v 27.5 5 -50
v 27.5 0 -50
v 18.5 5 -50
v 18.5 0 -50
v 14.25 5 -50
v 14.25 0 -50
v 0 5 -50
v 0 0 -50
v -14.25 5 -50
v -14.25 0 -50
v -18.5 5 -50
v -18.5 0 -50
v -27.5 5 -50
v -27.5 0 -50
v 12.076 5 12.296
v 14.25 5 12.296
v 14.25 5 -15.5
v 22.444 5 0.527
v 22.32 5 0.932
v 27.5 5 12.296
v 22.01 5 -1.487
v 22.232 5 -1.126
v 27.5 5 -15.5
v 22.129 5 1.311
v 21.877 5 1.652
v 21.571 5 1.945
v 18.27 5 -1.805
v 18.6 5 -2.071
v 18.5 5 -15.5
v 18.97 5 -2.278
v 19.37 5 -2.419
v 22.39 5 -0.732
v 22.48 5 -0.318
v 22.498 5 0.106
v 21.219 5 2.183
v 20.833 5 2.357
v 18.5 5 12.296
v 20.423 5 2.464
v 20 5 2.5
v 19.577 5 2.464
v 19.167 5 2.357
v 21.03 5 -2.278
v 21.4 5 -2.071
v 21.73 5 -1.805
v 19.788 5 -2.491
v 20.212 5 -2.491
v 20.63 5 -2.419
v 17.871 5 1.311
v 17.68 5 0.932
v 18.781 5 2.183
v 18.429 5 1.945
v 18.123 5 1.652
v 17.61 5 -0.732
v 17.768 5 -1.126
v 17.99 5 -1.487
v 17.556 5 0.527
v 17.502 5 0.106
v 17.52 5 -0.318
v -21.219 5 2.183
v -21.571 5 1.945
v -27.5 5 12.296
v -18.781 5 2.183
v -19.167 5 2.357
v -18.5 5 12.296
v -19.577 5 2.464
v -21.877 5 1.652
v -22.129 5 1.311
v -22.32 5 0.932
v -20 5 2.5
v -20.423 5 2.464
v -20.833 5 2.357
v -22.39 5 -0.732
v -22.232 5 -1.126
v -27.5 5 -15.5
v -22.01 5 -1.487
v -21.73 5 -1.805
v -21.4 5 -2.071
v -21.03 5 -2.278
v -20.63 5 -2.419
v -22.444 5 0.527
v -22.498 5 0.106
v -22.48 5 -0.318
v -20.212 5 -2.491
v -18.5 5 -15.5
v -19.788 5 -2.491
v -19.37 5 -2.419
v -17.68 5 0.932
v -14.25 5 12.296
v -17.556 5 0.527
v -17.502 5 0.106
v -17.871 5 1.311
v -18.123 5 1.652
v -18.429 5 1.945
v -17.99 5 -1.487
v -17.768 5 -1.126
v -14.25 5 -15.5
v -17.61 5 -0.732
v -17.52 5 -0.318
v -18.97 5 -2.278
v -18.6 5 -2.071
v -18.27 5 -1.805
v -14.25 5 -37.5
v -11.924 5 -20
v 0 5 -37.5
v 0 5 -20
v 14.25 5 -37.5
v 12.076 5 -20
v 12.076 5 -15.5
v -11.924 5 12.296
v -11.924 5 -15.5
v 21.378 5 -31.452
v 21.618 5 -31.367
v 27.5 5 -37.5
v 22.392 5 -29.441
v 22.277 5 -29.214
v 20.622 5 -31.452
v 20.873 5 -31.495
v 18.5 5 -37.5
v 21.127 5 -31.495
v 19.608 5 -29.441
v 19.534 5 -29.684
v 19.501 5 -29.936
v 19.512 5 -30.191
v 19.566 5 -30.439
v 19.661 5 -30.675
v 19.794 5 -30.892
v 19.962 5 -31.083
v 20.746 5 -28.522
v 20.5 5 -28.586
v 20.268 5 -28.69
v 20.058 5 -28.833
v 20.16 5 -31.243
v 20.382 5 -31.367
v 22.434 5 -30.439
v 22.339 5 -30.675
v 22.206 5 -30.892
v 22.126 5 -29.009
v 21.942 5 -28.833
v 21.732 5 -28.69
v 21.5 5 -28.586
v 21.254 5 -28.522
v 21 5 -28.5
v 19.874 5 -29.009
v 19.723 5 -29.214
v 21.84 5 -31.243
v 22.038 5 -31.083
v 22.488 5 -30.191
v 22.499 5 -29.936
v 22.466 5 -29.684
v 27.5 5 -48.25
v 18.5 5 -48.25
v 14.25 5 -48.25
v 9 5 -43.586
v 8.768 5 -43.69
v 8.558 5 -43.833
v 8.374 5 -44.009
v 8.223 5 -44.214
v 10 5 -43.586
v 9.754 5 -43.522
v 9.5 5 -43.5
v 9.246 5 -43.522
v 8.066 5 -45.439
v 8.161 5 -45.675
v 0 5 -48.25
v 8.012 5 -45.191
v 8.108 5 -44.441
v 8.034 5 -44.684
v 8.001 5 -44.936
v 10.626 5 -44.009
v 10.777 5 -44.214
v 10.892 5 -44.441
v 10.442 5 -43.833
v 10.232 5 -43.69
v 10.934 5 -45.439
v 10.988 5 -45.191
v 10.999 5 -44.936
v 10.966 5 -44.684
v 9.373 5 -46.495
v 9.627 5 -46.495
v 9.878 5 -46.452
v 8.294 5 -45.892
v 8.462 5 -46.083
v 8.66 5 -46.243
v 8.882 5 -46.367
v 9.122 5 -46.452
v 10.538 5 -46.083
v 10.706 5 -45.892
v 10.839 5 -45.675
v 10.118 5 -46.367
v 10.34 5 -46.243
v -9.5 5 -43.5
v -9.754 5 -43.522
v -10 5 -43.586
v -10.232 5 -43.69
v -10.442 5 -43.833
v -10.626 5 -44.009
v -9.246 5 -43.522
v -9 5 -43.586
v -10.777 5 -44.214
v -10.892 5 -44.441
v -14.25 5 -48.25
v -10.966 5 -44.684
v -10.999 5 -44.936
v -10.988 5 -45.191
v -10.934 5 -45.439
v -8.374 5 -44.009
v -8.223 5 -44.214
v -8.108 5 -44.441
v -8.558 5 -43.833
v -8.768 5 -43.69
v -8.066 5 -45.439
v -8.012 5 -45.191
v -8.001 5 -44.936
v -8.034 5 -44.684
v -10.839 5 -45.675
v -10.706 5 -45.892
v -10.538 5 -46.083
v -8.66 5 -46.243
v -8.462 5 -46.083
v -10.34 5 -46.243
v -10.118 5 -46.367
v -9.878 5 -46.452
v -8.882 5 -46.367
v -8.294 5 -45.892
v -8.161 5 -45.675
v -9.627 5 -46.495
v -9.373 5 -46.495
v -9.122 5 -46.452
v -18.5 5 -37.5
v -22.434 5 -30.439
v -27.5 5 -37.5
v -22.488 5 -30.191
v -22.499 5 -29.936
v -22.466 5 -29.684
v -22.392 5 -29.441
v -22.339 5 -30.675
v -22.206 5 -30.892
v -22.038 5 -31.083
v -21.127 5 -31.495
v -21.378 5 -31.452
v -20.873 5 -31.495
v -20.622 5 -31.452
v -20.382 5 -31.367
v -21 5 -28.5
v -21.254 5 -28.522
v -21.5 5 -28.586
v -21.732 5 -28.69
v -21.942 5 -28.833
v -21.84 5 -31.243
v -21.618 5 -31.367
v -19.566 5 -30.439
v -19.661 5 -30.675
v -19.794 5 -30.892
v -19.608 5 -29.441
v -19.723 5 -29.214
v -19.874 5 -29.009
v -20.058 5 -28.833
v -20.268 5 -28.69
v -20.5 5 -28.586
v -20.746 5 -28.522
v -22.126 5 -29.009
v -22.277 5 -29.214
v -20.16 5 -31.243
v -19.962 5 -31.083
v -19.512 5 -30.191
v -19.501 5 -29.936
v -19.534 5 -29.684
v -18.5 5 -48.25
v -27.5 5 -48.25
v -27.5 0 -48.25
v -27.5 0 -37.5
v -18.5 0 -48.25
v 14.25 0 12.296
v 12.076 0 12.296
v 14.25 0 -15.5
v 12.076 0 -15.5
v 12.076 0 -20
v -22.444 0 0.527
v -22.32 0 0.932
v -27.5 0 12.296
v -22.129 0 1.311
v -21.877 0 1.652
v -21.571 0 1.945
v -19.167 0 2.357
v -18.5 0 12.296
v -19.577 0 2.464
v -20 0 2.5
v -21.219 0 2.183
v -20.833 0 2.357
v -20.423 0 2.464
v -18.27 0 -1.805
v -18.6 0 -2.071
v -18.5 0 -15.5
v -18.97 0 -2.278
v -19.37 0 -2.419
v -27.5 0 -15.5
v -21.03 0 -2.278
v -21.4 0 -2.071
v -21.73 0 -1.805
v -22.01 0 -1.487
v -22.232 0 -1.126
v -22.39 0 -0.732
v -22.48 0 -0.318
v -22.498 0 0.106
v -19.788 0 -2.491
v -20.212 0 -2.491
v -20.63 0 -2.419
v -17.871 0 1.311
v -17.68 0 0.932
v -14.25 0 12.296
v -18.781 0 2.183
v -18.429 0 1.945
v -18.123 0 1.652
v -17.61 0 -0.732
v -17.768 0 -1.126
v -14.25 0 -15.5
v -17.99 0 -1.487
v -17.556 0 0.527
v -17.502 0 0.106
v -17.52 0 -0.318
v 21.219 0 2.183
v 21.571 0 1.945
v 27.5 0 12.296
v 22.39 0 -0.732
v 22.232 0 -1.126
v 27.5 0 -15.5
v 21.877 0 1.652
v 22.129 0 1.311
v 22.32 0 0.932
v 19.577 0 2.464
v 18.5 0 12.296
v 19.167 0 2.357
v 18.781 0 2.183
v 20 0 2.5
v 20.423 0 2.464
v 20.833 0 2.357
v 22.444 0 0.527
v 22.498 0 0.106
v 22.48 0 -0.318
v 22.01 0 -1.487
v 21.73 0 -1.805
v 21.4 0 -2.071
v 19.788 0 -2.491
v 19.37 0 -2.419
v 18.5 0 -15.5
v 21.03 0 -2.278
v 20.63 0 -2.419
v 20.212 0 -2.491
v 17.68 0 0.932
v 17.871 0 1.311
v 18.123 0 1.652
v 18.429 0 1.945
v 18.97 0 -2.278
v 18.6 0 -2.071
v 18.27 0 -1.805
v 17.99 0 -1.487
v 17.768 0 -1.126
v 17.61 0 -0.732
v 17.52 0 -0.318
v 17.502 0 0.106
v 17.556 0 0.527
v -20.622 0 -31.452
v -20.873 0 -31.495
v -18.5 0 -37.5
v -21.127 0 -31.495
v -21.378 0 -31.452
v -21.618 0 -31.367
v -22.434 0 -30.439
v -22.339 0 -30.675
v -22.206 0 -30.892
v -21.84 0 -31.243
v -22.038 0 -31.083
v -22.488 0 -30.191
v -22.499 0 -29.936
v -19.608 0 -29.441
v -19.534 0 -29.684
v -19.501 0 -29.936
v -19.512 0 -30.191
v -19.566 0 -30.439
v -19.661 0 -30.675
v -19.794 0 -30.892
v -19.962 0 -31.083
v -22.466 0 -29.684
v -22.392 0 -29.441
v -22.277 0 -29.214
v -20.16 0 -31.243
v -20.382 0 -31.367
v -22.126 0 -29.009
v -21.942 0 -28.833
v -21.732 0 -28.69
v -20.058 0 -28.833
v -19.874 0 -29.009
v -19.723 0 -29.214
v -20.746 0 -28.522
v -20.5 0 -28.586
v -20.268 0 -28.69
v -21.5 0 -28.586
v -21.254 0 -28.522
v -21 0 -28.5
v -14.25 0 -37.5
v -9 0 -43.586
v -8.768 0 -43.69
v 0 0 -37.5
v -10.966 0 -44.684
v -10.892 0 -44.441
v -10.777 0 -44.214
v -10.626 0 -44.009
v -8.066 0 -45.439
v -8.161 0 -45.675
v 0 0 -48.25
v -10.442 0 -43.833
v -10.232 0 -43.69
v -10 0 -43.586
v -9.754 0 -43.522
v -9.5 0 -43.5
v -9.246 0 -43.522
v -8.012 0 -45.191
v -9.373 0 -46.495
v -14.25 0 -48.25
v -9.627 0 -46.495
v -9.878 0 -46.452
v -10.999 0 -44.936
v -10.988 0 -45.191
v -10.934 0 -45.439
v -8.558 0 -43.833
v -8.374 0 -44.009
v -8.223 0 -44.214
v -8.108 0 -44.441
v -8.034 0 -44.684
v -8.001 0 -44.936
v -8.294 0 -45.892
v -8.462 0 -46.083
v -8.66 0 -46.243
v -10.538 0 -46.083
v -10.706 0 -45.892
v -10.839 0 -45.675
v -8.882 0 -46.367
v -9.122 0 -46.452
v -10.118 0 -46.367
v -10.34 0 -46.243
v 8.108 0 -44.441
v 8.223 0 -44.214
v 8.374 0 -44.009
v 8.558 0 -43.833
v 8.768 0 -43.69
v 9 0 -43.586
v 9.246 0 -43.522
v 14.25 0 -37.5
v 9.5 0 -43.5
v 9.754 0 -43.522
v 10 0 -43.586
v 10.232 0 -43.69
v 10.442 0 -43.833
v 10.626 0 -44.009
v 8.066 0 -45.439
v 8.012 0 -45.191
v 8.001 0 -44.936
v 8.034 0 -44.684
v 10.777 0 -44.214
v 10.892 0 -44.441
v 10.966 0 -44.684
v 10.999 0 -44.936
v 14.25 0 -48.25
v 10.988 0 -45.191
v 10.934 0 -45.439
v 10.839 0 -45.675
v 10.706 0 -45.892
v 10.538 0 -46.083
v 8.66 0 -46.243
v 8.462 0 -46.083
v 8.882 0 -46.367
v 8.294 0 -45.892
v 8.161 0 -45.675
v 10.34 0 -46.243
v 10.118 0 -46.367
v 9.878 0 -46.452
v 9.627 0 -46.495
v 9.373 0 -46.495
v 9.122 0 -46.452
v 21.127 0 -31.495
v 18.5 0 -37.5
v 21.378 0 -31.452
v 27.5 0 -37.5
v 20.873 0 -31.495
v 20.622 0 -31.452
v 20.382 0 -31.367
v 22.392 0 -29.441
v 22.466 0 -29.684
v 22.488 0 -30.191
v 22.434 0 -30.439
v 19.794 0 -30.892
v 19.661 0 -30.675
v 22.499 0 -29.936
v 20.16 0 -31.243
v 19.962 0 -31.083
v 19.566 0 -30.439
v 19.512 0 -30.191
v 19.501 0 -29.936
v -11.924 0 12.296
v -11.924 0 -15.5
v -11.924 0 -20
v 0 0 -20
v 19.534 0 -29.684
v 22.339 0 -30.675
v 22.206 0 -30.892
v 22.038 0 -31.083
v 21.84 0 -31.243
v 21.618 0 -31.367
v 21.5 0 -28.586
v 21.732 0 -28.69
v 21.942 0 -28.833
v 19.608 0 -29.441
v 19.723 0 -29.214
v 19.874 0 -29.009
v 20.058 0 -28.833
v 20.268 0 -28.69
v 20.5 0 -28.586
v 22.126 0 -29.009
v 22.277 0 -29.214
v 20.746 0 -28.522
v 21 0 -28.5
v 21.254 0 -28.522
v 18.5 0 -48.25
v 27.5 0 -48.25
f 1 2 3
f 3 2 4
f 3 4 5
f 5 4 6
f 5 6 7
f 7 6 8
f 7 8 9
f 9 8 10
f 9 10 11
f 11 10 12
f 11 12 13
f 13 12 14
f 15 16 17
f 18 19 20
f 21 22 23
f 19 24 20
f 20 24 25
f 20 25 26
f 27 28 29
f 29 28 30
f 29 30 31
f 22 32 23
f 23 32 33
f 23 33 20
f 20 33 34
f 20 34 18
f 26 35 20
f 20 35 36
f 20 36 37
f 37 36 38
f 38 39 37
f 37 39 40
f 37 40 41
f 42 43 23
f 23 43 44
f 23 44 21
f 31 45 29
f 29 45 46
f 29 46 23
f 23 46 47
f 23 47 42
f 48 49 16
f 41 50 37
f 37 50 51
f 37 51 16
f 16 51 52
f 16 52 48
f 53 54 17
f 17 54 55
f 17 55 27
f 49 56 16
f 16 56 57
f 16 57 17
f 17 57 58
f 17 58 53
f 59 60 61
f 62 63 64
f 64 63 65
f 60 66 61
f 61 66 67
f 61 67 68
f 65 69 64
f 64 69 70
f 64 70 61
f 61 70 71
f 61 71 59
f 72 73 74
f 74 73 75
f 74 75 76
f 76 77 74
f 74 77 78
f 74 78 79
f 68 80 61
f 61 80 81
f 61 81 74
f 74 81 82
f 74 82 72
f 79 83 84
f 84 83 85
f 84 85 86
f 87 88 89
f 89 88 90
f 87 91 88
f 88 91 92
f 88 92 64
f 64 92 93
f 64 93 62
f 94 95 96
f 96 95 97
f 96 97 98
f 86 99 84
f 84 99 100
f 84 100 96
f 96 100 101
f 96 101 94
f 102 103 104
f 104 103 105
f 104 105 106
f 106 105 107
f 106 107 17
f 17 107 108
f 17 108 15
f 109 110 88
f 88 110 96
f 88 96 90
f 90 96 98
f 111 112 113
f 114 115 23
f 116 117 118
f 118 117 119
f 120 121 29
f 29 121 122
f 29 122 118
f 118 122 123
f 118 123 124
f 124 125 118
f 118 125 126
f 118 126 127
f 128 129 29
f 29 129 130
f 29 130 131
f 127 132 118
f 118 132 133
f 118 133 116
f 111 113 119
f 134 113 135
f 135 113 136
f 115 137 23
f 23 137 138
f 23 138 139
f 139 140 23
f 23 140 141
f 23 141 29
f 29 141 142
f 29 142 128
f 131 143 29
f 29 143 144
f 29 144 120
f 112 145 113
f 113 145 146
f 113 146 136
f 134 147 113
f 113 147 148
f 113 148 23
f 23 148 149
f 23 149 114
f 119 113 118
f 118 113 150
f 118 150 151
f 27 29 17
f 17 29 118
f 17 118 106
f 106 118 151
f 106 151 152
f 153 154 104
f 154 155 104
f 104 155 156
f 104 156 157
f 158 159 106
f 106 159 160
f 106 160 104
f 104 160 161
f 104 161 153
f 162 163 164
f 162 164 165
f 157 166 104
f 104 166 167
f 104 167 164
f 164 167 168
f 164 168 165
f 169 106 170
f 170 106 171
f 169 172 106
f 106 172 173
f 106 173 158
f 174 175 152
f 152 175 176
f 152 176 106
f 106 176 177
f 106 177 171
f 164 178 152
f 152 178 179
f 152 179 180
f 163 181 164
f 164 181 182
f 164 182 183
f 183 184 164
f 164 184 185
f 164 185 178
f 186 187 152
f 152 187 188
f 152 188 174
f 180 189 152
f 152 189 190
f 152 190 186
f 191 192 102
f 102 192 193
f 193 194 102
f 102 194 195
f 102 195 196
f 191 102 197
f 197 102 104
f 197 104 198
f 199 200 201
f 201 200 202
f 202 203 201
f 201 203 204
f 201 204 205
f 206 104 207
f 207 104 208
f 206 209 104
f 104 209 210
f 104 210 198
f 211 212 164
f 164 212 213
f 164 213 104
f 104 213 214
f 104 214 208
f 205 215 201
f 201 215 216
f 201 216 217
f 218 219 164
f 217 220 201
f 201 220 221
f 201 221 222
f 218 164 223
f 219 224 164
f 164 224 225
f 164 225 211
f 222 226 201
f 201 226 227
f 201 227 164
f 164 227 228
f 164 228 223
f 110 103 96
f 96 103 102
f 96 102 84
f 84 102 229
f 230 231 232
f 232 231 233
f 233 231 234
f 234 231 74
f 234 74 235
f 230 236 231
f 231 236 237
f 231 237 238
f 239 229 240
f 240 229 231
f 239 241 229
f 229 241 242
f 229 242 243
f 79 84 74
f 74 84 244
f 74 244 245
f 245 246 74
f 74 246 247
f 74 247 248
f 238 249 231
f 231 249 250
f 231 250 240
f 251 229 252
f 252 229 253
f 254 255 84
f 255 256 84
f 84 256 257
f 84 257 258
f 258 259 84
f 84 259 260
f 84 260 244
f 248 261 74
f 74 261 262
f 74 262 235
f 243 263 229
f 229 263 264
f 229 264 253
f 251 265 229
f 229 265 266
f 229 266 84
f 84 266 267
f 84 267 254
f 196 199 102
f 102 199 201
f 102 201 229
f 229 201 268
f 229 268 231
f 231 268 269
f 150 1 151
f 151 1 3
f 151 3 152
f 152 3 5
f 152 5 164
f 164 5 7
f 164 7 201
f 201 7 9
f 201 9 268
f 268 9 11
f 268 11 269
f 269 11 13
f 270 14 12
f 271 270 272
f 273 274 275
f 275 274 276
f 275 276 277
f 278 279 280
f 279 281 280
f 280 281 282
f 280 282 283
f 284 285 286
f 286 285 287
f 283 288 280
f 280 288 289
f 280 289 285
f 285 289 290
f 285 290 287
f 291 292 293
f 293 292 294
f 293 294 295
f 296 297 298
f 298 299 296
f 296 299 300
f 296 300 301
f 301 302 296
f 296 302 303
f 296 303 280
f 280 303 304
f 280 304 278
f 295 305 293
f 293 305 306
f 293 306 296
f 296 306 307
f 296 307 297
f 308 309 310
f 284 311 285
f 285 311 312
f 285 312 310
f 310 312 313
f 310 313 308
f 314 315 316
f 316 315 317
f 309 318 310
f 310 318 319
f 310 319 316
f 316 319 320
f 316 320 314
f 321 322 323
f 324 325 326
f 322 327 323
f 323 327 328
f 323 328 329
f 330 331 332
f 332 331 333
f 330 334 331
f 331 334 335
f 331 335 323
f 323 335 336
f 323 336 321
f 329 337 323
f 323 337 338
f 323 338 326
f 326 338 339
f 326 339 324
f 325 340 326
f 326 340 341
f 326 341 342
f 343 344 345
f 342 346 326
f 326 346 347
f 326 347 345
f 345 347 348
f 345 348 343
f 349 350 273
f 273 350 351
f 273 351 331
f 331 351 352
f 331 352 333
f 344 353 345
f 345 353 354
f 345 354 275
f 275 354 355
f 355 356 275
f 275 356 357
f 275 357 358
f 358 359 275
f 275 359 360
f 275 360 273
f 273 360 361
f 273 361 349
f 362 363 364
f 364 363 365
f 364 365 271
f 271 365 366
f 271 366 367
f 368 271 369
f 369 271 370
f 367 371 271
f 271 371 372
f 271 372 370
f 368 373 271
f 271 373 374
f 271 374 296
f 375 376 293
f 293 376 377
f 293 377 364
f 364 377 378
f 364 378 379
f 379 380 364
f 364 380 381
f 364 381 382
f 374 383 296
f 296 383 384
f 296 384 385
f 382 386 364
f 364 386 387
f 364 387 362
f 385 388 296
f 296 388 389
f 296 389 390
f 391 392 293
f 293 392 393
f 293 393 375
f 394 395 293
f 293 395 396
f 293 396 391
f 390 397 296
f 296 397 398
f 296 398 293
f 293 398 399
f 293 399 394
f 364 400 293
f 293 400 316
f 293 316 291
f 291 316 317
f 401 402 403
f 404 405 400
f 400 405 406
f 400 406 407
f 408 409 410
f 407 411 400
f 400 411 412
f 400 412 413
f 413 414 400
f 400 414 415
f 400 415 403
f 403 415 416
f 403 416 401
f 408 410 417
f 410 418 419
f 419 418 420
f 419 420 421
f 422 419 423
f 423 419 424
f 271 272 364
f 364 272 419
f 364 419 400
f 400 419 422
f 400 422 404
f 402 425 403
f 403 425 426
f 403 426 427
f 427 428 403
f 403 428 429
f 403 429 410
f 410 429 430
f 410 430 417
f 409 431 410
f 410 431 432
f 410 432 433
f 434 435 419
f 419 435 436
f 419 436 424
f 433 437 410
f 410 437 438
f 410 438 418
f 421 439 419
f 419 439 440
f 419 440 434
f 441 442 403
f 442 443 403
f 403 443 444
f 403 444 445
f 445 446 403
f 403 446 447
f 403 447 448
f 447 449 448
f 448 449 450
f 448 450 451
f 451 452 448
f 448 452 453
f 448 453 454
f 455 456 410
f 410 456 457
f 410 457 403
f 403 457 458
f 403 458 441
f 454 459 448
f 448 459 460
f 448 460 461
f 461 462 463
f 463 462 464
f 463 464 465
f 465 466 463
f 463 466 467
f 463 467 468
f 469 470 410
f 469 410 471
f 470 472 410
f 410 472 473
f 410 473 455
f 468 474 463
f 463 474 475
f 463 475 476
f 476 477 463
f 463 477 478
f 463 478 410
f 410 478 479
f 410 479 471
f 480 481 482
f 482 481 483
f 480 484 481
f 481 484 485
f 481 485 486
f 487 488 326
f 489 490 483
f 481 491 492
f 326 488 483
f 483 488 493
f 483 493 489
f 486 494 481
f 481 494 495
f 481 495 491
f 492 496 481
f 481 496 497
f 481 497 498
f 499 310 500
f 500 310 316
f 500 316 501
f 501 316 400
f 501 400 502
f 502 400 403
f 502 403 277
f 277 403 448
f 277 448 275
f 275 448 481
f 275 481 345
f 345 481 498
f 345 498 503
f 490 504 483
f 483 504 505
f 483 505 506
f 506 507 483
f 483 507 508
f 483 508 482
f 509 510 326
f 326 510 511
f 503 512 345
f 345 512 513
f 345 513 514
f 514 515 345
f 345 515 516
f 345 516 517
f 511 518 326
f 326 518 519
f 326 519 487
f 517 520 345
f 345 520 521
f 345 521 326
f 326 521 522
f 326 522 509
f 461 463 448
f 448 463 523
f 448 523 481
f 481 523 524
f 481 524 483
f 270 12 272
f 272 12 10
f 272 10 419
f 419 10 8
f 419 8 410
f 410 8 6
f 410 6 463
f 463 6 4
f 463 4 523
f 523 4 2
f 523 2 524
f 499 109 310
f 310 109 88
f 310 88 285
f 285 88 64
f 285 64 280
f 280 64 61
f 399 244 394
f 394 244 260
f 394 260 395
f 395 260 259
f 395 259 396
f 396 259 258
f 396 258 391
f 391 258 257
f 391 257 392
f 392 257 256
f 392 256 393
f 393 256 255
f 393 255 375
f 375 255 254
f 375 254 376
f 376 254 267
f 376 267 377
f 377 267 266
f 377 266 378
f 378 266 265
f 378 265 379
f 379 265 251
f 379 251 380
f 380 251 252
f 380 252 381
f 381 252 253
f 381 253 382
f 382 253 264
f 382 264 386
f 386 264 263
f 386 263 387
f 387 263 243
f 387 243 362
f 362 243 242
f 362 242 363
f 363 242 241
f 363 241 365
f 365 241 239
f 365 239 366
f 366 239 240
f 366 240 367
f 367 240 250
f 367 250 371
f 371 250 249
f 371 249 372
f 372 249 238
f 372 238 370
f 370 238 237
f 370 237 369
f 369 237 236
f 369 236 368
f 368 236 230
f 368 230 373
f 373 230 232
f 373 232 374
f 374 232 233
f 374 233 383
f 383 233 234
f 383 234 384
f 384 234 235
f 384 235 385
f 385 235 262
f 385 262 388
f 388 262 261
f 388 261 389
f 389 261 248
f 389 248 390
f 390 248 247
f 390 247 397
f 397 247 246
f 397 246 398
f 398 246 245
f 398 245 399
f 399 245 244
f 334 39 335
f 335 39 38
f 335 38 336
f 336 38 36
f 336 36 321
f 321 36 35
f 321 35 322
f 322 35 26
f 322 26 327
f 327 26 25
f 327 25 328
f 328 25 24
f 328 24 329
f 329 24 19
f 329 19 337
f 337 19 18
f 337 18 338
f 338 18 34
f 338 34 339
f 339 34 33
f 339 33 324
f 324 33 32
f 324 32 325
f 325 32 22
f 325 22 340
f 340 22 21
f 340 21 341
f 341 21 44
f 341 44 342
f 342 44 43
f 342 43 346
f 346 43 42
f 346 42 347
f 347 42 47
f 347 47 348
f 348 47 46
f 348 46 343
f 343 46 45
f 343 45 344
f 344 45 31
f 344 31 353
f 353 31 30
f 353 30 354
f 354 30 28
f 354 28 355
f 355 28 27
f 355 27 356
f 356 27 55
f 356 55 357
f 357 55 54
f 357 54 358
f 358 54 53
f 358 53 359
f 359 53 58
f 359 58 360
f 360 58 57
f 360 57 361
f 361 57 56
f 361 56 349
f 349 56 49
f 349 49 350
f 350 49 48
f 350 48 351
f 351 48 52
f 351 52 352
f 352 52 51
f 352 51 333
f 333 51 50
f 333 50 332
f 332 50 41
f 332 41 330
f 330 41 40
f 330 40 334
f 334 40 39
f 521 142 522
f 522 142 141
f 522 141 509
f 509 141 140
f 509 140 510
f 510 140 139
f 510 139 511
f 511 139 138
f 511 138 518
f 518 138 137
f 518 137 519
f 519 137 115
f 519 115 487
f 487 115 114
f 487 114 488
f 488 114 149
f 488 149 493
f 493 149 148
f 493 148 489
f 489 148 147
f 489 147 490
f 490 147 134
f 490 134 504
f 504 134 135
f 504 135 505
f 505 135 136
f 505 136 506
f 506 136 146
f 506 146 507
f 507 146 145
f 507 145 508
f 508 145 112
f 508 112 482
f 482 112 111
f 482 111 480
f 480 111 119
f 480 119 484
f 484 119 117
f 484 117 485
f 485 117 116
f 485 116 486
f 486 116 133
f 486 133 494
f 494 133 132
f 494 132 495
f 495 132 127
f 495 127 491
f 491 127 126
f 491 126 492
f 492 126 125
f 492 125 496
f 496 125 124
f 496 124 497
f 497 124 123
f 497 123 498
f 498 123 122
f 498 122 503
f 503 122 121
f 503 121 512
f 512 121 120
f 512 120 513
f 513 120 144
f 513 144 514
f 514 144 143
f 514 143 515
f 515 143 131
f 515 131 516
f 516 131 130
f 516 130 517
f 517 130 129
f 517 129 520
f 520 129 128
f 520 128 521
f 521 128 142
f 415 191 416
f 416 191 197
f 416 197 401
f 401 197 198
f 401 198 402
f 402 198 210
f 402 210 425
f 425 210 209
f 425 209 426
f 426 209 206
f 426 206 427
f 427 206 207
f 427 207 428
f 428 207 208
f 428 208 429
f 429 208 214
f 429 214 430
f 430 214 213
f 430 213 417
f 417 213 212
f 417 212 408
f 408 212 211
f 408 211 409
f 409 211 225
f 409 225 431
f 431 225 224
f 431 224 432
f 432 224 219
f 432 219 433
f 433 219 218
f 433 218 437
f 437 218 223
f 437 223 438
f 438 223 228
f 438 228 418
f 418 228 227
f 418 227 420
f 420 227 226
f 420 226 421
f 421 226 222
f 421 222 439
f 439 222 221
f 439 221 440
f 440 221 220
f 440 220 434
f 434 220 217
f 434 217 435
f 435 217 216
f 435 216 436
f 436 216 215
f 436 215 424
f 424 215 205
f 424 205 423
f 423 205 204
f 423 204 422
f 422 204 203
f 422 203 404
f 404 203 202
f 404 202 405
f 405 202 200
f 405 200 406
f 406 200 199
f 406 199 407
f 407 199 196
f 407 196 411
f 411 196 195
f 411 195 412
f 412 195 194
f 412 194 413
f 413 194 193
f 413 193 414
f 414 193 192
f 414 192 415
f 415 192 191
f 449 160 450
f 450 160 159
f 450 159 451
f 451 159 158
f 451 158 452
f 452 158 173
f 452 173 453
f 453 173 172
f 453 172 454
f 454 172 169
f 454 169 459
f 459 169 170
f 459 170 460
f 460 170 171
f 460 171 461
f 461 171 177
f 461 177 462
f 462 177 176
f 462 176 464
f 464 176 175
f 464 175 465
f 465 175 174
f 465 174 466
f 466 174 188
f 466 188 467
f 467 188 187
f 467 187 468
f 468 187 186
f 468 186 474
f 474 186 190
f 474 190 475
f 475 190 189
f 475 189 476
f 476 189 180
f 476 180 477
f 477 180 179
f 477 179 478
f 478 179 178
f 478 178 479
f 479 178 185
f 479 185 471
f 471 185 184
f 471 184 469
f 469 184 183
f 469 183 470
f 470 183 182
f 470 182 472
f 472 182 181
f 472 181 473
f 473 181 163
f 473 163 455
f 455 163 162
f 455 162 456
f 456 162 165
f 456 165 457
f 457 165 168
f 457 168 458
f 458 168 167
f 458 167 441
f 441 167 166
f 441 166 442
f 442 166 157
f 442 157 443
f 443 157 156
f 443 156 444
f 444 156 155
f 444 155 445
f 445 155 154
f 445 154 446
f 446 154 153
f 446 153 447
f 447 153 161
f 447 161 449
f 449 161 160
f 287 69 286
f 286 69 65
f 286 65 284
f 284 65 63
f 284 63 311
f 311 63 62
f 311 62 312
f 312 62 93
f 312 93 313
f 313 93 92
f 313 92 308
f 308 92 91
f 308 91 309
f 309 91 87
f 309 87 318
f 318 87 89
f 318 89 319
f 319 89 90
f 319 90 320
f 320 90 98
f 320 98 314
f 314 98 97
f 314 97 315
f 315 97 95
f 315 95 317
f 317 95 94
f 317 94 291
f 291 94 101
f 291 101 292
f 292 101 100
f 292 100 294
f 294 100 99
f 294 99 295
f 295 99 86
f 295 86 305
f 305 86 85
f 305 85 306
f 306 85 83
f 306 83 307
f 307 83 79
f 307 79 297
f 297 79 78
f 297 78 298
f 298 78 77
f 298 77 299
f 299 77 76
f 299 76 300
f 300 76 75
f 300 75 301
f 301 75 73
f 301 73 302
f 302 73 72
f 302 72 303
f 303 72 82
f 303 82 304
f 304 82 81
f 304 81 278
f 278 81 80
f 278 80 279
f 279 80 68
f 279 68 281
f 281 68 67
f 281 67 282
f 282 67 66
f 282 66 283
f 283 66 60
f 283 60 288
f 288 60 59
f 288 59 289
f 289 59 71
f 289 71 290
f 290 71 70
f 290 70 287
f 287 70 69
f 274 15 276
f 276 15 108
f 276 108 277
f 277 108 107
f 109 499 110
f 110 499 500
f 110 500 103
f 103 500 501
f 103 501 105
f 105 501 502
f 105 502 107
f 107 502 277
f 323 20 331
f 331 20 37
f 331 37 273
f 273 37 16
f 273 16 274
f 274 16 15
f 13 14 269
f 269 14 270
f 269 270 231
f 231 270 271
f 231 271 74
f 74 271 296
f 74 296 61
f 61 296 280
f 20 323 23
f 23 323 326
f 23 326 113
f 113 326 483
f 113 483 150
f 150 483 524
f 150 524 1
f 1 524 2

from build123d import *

# Parameters (mm, degrees)
SKETCH1_W           = 65
SKETCH1_H           = 100
BOSS_EXTRUDE1_DEPTH = 5
SKETCH3_R           = 1.5
SKETCH3_R_2         = 2.5
CUT_EXTRUDE2_DEPTH  = 5
SKETCH5_W           = 24
SKETCH5_H           = 70
CUT_EXTRUDE4_DEPTH  = 5
SKETCH6_W           = 65
SKETCH6_H           = 10
CUT_EXTRUDE5_DEPTH  = 5
SKETCH7_W           = 20.576460324
SKETCH7_H           = 27.703955477
CUT_EXTRUDE6_DEPTH  = 5
SKETCH8_W           = 20.423539676
SKETCH8_H           = 27.703955477
CUT_EXTRUDE7_DEPTH  = 5
CUT_EXTRUDE8_DEPTH  = 5
SKETCH10_W          = 5
SKETCH10_H          = 62.296044523
CUT_EXTRUDE9_DEPTH  = 5


with BuildPart() as part:
    # Sketch1 → Boss-Extrude1 (new body)
    with BuildSketch(Plane(origin=(0, 0, 0), x_dir=(1, 0, 0), z_dir=(0, 1, 0))):
        Rectangle(SKETCH1_W, SKETCH1_H)
    extrude(amount=BOSS_EXTRUDE1_DEPTH)

    # Sketch3 → Cut-Extrude2 (cut)
    with BuildSketch(Plane(origin=(0, 5, 0), x_dir=(1, 0, 0), z_dir=(0, 1, 0))):
        with Locations(Location((-21, 30, 0), (0, 0, 270))):
            Circle(SKETCH3_R)
        with Locations(Location((21, 30, 0), (0, 0, 270))):
            Circle(SKETCH3_R)
        with Locations(Location((-9.5, 45, 0), (0, 0, 270))):
            Circle(SKETCH3_R)
        with Locations(Location((9.5, 45, 0), (0, 0, 270))):
            Circle(SKETCH3_R)
        with Locations(Location((-20, 0, 0), (0, 0, 270))):
            Circle(SKETCH3_R_2)
        with Locations(Location((20, 0, 0), (0, 0, 270))):
            Circle(SKETCH3_R_2)
    extrude(amount=-CUT_EXTRUDE2_DEPTH, mode=Mode.SUBTRACT)

    # Sketch5 → Cut-Extrude4 (cut)
    with BuildSketch(Plane(origin=(0, 5, 0), x_dir=(1, 0, 0), z_dir=(0, 1, 0))):
        with Locations((0.076460324, -15)):
            Rectangle(SKETCH5_W, SKETCH5_H)
    extrude(amount=-CUT_EXTRUDE4_DEPTH, mode=Mode.SUBTRACT)

    # Sketch6 → Cut-Extrude5 (cut)
    with BuildSketch(Plane(origin=(0, 5, 0), x_dir=(1, 0, 0), z_dir=(0, 1, 0))):
        with Locations((0, -45)):
            Rectangle(SKETCH6_W, SKETCH6_H)
    extrude(amount=-CUT_EXTRUDE5_DEPTH, mode=Mode.SUBTRACT)

    # Sketch7 → Cut-Extrude6 (cut)
    with BuildSketch(Plane(origin=(0, 5, 0), x_dir=(1, 0, 0), z_dir=(0, 1, 0))):
        with Locations((-22.211769838, -26.148022261)):
            Rectangle(SKETCH7_W, SKETCH7_H)
    extrude(amount=-CUT_EXTRUDE6_DEPTH, mode=Mode.SUBTRACT)

    # Sketch8 → Cut-Extrude7 (cut)
    with BuildSketch(Plane(origin=(0, 5, 0), x_dir=(1, 0, 0), z_dir=(0, 1, 0))):
        with Locations((22.288230162, -26.148022261)):
            Rectangle(SKETCH8_W, SKETCH8_H)
    extrude(amount=-CUT_EXTRUDE7_DEPTH, mode=Mode.SUBTRACT)

    # Sketch9 → Cut-Extrude8 (cut)
    with BuildSketch(Plane(origin=(0, 5, 0), x_dir=(1, 0, 0), z_dir=(0, 1, 0))):
        Polygon((-27.5, 34.801314728), (-27.5, 50), (-32.5, 50), (-32.5, -12.296044523), (-27.5, -12.296044523), (-27.5, 18.851977738), align=None)
    extrude(amount=-CUT_EXTRUDE8_DEPTH, mode=Mode.SUBTRACT)

    # Sketch10 → Cut-Extrude9 (cut)
    with BuildSketch(Plane(origin=(0, 5, 0), x_dir=(1, 0, 0), z_dir=(0, 1, 0))):
        with Locations((30, 18.851977739)):
            Rectangle(SKETCH10_W, SKETCH10_H)
    extrude(amount=-CUT_EXTRUDE9_DEPTH, mode=Mode.SUBTRACT)


solid = part.part
